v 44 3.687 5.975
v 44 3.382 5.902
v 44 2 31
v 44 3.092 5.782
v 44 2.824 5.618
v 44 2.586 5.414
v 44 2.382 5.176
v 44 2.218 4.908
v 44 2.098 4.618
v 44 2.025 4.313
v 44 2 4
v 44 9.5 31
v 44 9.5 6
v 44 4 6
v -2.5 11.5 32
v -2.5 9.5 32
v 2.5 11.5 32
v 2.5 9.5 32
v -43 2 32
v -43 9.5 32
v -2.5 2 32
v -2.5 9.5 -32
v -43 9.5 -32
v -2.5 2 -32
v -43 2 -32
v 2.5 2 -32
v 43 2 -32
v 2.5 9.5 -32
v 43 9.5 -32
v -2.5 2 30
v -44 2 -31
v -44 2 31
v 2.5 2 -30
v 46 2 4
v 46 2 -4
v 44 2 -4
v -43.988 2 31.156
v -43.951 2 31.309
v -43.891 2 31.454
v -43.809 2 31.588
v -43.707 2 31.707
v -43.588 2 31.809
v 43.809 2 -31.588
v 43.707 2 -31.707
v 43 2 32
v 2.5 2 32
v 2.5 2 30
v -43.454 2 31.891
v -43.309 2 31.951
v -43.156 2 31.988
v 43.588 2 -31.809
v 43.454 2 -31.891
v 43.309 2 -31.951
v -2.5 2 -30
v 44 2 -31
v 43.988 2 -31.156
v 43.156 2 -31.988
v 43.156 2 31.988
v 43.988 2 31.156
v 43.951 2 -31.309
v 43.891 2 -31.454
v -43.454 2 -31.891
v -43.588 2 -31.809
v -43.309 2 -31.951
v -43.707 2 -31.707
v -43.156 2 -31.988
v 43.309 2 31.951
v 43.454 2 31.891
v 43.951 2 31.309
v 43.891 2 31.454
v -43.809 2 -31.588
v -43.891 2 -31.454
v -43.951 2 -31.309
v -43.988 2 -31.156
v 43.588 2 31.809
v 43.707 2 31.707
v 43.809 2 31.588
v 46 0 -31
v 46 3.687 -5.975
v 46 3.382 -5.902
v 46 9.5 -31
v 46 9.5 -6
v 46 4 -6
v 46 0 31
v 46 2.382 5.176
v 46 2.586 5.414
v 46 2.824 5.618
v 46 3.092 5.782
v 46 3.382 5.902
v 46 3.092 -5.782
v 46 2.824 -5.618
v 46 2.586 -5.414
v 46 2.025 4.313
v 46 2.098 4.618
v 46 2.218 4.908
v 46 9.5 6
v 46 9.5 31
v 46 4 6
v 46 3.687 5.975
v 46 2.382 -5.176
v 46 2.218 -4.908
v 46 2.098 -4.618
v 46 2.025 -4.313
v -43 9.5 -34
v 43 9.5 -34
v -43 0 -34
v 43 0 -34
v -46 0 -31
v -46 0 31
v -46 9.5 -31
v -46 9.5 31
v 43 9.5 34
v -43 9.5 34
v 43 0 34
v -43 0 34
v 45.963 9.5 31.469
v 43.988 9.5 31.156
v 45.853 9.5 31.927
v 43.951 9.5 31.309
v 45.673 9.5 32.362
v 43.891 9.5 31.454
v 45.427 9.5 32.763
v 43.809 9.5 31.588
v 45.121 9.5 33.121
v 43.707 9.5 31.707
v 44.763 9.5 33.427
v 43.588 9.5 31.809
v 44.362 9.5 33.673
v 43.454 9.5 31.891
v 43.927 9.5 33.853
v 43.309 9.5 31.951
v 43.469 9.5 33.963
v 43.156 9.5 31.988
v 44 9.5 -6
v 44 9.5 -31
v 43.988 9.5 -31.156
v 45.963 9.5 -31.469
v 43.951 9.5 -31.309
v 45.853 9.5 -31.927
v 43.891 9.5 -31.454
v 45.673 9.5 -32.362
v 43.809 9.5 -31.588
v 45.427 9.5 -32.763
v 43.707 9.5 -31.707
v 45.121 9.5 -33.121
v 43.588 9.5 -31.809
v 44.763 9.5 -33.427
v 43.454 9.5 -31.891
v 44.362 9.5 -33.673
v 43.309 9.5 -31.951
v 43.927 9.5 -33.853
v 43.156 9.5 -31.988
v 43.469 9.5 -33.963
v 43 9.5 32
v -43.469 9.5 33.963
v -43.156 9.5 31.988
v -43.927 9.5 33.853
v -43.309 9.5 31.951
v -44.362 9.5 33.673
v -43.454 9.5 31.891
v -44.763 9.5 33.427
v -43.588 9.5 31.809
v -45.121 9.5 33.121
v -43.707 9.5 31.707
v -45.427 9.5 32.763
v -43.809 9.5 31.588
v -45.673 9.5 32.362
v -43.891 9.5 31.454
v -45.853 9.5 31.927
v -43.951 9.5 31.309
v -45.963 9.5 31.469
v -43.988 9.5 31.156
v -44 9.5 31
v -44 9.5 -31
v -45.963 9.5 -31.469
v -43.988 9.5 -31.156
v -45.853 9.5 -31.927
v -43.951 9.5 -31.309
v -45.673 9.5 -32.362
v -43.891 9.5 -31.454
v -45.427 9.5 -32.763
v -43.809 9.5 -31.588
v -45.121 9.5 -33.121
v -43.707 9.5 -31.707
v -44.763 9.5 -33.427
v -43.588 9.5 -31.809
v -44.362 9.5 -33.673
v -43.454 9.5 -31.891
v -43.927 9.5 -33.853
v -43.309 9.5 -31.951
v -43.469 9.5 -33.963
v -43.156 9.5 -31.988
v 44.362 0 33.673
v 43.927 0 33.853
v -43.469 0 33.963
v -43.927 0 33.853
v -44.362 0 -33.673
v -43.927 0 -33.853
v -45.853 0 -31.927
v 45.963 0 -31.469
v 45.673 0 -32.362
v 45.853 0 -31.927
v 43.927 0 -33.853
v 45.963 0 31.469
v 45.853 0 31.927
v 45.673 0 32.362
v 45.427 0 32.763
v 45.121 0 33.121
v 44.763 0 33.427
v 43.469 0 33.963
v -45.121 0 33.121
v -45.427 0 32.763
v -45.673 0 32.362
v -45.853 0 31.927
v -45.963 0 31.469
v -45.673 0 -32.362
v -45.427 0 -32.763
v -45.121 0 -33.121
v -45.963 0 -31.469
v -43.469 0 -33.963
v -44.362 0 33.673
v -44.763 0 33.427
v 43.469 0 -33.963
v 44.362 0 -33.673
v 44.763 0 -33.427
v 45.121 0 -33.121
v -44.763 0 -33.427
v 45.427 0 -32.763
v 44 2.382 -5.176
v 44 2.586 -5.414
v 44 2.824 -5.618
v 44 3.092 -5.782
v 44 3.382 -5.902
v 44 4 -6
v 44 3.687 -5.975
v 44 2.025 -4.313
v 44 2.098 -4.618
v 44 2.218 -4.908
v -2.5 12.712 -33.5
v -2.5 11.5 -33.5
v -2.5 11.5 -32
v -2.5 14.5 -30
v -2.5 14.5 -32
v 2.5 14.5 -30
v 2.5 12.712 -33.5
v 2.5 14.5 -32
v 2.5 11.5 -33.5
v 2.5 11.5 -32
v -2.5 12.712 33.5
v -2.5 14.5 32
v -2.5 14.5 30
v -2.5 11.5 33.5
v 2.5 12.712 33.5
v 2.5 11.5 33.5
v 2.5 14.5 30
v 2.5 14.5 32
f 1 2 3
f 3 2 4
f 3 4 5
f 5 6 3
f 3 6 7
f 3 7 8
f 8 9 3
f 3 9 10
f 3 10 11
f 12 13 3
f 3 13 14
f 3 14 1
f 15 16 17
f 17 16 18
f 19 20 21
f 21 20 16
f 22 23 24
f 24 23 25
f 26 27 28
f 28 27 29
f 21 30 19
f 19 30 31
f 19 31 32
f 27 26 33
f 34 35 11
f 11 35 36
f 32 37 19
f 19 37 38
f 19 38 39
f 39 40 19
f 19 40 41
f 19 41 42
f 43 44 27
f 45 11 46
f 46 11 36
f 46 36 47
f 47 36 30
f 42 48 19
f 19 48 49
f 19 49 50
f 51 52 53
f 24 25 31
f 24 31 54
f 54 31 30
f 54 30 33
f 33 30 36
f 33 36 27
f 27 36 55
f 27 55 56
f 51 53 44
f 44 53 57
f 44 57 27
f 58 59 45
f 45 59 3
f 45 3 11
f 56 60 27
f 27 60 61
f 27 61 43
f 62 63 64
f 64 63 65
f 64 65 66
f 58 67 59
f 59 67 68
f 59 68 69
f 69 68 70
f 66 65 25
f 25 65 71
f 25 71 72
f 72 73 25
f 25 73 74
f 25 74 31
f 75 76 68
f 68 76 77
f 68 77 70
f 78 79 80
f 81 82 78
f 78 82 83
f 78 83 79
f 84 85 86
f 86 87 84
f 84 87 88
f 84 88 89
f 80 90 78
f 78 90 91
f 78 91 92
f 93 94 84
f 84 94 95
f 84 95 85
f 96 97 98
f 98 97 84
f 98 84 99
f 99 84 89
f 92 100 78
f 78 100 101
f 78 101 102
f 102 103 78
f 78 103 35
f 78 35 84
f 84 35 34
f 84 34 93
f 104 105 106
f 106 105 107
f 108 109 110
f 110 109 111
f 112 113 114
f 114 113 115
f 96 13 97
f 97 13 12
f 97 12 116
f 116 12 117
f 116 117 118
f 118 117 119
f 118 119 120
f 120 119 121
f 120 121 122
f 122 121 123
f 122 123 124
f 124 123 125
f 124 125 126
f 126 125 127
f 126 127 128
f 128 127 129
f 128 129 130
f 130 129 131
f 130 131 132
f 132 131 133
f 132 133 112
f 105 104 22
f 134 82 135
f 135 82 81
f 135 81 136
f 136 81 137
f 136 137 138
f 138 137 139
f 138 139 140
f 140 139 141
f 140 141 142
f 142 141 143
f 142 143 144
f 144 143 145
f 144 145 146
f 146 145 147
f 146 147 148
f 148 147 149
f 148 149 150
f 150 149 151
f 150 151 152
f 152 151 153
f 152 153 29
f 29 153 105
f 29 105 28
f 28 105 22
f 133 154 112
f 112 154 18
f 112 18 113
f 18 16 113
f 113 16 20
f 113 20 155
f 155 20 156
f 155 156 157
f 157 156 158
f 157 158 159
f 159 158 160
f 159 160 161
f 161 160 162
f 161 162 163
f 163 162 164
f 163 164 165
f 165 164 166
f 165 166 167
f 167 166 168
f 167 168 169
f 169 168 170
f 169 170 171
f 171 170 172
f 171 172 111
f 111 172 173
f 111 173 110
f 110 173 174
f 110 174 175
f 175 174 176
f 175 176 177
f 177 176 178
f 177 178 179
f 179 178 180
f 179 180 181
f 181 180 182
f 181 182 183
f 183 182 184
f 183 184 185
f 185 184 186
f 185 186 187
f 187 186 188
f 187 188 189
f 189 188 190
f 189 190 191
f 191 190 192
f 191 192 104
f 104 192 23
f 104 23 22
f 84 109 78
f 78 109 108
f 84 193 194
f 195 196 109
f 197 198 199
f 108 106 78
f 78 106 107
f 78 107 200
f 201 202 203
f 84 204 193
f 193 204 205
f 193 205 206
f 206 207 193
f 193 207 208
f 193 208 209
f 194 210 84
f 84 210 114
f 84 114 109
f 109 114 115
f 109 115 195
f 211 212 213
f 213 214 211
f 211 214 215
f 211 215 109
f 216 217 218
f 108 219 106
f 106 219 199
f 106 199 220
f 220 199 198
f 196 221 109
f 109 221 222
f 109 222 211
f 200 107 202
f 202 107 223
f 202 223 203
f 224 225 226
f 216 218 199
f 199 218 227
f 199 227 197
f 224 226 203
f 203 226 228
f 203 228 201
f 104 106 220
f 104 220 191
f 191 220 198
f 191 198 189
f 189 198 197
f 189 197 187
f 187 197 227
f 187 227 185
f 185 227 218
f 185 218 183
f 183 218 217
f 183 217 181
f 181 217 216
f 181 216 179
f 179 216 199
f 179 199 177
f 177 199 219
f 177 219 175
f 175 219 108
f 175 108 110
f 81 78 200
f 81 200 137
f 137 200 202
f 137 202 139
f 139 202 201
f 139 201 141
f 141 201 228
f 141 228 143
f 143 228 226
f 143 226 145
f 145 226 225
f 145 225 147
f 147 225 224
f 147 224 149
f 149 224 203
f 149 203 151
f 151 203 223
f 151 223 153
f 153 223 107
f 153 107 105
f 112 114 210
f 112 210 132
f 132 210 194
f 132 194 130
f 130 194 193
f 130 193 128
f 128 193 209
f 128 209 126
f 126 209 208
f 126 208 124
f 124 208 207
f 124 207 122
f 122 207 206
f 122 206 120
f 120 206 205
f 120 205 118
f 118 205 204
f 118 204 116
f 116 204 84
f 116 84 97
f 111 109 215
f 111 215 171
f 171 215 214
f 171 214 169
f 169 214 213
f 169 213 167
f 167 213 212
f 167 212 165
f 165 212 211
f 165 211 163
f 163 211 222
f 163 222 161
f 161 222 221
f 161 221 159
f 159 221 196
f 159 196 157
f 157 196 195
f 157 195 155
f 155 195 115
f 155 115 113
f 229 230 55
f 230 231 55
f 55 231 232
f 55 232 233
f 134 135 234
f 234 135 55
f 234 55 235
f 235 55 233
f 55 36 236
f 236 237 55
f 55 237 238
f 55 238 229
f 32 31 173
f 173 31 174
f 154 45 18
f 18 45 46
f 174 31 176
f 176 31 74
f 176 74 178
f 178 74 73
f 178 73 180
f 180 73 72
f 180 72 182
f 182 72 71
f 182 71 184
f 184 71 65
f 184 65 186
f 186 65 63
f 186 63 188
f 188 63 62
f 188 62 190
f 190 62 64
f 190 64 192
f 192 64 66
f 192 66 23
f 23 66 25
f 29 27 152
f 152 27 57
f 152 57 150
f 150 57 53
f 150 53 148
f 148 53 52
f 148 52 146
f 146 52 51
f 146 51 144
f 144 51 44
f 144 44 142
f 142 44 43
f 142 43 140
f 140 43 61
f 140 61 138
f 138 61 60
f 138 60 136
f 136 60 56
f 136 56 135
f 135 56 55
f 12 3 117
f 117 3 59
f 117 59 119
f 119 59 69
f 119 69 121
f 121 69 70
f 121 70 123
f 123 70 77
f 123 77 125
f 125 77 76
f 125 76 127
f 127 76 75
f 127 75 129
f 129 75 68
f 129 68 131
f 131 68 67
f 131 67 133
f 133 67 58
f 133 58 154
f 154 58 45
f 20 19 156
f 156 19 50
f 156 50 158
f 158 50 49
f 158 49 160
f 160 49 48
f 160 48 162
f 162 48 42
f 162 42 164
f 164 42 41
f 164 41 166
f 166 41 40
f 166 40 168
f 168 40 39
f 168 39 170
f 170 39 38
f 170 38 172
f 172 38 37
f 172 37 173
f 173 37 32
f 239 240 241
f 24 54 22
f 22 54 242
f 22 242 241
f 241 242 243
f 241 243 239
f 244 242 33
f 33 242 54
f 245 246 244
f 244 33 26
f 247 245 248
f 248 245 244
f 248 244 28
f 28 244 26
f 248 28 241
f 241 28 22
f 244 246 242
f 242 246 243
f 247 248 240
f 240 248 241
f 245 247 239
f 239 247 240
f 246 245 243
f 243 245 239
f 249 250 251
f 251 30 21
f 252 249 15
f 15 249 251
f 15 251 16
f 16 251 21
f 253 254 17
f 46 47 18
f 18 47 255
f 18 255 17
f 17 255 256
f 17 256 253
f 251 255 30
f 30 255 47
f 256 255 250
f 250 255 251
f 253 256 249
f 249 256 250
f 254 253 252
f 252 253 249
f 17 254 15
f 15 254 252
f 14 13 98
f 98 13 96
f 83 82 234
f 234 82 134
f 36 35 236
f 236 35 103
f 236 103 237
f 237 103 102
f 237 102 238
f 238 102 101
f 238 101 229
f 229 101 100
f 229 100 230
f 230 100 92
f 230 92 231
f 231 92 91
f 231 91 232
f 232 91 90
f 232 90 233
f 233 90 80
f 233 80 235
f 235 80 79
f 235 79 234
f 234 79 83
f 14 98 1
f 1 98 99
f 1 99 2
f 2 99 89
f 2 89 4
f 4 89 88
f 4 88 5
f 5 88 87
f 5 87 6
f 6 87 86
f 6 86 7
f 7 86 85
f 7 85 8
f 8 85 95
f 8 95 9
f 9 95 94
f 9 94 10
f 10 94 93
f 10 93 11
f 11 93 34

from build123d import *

# Parameters (mm, degrees)
SKETCH1_W           = 92
SKETCH1_H           = 68
BOSS_EXTRUDE1_DEPTH = 9.5
FILLET1_R           = 3
SHELL1_T            = -2
SKETCH3_W           = 5
SKETCH3_H           = 2
BOSS_EXTRUDE2_DEPTH = 12.5
BOSS_EXTRUDE3_DEPTH = 5
CUT_EXTRUDE1_REACH  = 94
SKETCH5_W           = 12
SKETCH5_H           = 7.5
FILLET2_R           = 2


with BuildPart() as part:
    # Sketch1 → Boss-Extrude1 (new body)
    with BuildSketch(Plane(origin=(0, 0, 0), x_dir=(1, 0, 0), z_dir=(0, 1, 0))):
        Rectangle(SKETCH1_W, SKETCH1_H)
    extrude(amount=BOSS_EXTRUDE1_DEPTH)

    # Fillet1
    fillet1_edges = [part.edges().sort_by_distance(p)[0] for p in [
        (46, 4.75, 34),
        (-46, 4.75, 34),
        (-46, 4.75, -34),
        (46, 4.75, -34),
    ]]
    fillet(fillet1_edges, radius=FILLET1_R)

    # Shell1
    shell1_openings = [part.faces().sort_by_distance(p)[0] for p in [
        (0, 9.5, 0),
    ]]
    offset(amount=SHELL1_T, openings=shell1_openings, kind=Kind.INTERSECTION)

    # Sketch3 → Boss-Extrude2 (add)
    with BuildSketch(Plane(origin=(0, 2, 0), x_dir=(1, 0, 0), z_dir=(0, 1, 0))):
        with Locations((0, 31)):
            Rectangle(SKETCH3_W, SKETCH3_H)
    boss_extrude2 = extrude(amount=BOSS_EXTRUDE2_DEPTH)

    # Sketch4 → Boss-Extrude3 (add)
    with BuildSketch(Plane.ZY.offset(2.5)):
        Polygon((-32, 14.5), (-33.5, 12.712369611), (-33.5, 11.5), (-32, 11.5), align=None)
    boss_extrude3 = extrude(amount=-BOSS_EXTRUDE3_DEPTH)

    # Mirror1: Boss-Extrude2, Boss-Extrude3 across plane
    add(boss_extrude2.mirror(Plane.XY))
    add(boss_extrude3.mirror(Plane.XY))

    # Sketch5 → Cut-Extrude1 (cut, up to next)
    with BuildSketch(Plane(origin=(46, 0, 0), x_dir=(0, 0, -1), z_dir=(1, 0, 0)), mode=Mode.PRIVATE) as cut_extrude1_sk1:
        with Locations((0, 5.75)):
            Rectangle(SKETCH5_W, SKETCH5_H)
    cut_extrude1_tool1 = extrude(cut_extrude1_sk1.sketch, amount=-CUT_EXTRUDE1_REACH, mode=Mode.PRIVATE) & part.part
    add(cut_extrude1_tool1.solids().sort_by_distance((46, 5.75, 0))[0], mode=Mode.SUBTRACT)

    # Fillet2
    fillet2_edges = [part.edges().sort_by_distance(p)[0] for p in [
        (45, 2, 6),
        (45, 2, -6),
    ]]
    fillet(fillet2_edges, radius=FILLET2_R)


solid = part.part
